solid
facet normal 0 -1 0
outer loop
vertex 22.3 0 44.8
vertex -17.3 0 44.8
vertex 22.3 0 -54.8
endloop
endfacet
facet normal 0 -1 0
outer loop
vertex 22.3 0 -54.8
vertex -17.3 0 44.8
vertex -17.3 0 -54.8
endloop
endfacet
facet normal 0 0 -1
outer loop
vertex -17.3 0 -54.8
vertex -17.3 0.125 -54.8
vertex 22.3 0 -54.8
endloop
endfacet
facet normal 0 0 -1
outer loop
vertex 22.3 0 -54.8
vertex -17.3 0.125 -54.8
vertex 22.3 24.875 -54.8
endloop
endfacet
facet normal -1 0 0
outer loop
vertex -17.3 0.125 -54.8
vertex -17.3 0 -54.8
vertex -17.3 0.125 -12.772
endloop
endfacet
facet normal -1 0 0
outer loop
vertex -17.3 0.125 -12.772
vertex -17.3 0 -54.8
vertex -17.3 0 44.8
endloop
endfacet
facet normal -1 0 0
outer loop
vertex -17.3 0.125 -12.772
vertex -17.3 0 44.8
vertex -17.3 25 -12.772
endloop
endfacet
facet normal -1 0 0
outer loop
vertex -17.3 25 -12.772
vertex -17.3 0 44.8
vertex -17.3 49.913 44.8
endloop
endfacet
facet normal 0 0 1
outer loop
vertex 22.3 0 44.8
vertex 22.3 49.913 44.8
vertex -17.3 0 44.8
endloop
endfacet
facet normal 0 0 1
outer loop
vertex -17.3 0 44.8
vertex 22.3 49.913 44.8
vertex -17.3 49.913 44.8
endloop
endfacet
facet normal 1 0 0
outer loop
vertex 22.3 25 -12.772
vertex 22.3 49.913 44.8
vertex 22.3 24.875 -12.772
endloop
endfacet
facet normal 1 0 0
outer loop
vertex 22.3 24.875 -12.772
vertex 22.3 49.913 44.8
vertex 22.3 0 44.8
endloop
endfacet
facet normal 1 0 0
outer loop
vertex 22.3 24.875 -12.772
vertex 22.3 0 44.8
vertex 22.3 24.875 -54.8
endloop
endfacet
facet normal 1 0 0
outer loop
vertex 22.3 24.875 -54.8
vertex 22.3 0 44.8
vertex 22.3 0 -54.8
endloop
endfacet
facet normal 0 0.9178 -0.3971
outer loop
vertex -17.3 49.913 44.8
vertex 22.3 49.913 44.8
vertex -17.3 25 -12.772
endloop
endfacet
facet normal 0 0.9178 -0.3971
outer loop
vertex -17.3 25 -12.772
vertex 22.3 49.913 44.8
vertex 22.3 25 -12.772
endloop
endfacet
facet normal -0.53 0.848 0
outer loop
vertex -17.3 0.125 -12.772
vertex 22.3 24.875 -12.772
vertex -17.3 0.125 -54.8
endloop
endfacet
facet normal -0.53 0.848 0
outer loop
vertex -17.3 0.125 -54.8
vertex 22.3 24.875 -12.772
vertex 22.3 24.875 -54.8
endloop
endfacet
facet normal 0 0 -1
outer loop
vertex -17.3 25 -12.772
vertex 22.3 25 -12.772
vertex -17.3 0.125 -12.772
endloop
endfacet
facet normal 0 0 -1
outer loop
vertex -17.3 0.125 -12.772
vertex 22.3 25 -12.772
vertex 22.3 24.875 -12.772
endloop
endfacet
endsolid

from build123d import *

# Parameters (mm, degrees)
SKETCH2_W           = 40
SKETCH2_H           = 5
SKETCH2_W_2         = 5
SKETCH2_H_2         = 100
BOSS_EXTRUDE1_DEPTH = 30
SKETCH3_W           = 3
SKETCH3_H           = 3
CUT_EXTRUDE1_DEPTH  = 5
SKETCH2_4_W         = 40
SKETCH2_4_H         = 100
BOSS_EXTRUDE2_DEPTH = 5
CUT_EXTRUDE2_DEPTH  = 25
BOSS_EXTRUDE3_DEPTH = 25
SKETCH10_W          = 40
SKETCH10_H          = 5
BOSS_EXTRUDE4_DEPTH = 35
SKETCH11_W          = 5
SKETCH11_H          = 5
CUT_EXTRUDE5_DEPTH  = 6
SKETCH11_4_W        = 5
SKETCH11_4_H        = 5
CUT_EXTRUDE6_DEPTH  = 4.99
BOSS_EXTRUDE5_DEPTH = 50
SKETCH12_3_W        = 40
SKETCH12_3_H        = 42.17911114
BOSS_EXTRUDE6_DEPTH = 25
CHAMFER1_SIZE       = 25.021332939
CHAMFER1_SIZE_2     = 57.82088886
CUT_EXTRUDE7_DEPTH  = 42.2284
SKETCH15_W          = 50
SKETCH15_H          = 110
CUT_EXTRUDE8_DEPTH  = 40
SKETCH16_W          = 40
SKETCH16_H          = 100
SKETCH16_W_2        = 39.6
SKETCH16_H_2        = 99.6
CUT_EXTRUDE9_DEPTH  = 50


with BuildPart() as part:
    # Sketch2 → Boss-Extrude1 (new body)
    with BuildSketch(Plane(origin=(0, 0, 0), x_dir=(1, 0, 0), z_dir=(0, 1, 0))):
        Polygon((-22.5, 60), (-22.5, -50), (-17.5, -50), (-17.5, -45), (-17.5, 55), (-17.5, 60), align=None)
        with Locations((2.5, 57.5)):
            Rectangle(SKETCH2_W, SKETCH2_H)
        with Locations((25, 57.5)):
            Rectangle(SKETCH2_W_2, SKETCH2_H)
        with Locations((25, 5)):
            Rectangle(SKETCH2_W_2, SKETCH2_H_2)
        with Locations((25, -47.5)):
            Rectangle(SKETCH2_W_2, SKETCH2_H)
        with Locations((2.5, -47.5)):
            Rectangle(SKETCH2_W, SKETCH2_H)
    extrude(amount=-BOSS_EXTRUDE1_DEPTH)

    # Sketch3 → Cut-Extrude1 (cut)
    with BuildSketch(Plane.ZY.offset(22.5)):
        Polygon((-35, -25), (-35, -28), (-32, -28), (-32, -22), (-38, -22), (-38, -25), align=None)
        with Locations((-36.5, -26.5)):
            Rectangle(SKETCH3_W, SKETCH3_H)
    extrude(amount=-CUT_EXTRUDE1_DEPTH, mode=Mode.SUBTRACT)

    # Sketch2<4> → Boss-Extrude2 (add)
    with BuildSketch(Plane(origin=(0, 0, 0), x_dir=(1, 0, 0), z_dir=(0, 1, 0))):
        with Locations((2.5, 5)):
            Rectangle(SKETCH2_4_W, SKETCH2_4_H)
    extrude(amount=-BOSS_EXTRUDE2_DEPTH)

    # Sketch5 → Cut-Extrude2 (cut)
    with BuildSketch(Plane.XZ.offset(30)):
        Polygon((27.5, 50), (-22.5, 50), (-22.5, 45), (-17.5, 45), (17.5, 45), (22.5, 45), (22.5, -55), (17.5, -55), (-17.5, -55), (-22.5, -55), (-22.5, -60), (27.5, -60), align=None)
    extrude(amount=-CUT_EXTRUDE2_DEPTH, mode=Mode.SUBTRACT)

    # Sketch5<3> → Boss-Extrude3 (add)
    with BuildSketch(Plane.XZ.offset(30)):
        Polygon((17.5, 45), (-17.5, 45), (-17.5, 40), (12.5, 40), (12.5, -50), (-17.5, -50), (-17.5, -55), (17.5, -55), align=None)
    extrude(amount=-BOSS_EXTRUDE3_DEPTH)

    # Sketch10 → Boss-Extrude4 (add)
    with BuildSketch(Plane.XZ.offset(5)):
        with Locations((-2.5, 47.5)):
            Rectangle(SKETCH10_W, SKETCH10_H)
        with Locations((-2.5, -57.5)):
            Rectangle(SKETCH10_W, SKETCH10_H)
    extrude(amount=BOSS_EXTRUDE4_DEPTH)

    # Sketch11 → Cut-Extrude5 (cut)
    with BuildSketch(Plane(origin=(0, 0, 0), x_dir=(1, 0, 0), z_dir=(0, 1, 0))):
        with Locations((25, 52.5)):
            Rectangle(SKETCH11_W, SKETCH11_H)
        Polygon((27.5, 7.5), (22.5, 7.5), (22.5, 5), (22.5, 2.5), (27.5, 2.5), (27.5, 5), align=None)
        Polygon((27.5, -45), (27.5, -40), (24, -40), (23.5, -40), (22.5, -40), (22.5, -41), (22.5, -41.5), (22.5, -45), align=None)
    extrude(amount=-CUT_EXTRUDE5_DEPTH, mode=Mode.SUBTRACT)

    # Sketch11<4> → Cut-Extrude6 (cut)
    with BuildSketch(Plane(origin=(0, 0, 0), x_dir=(1, 0, 0), z_dir=(0, 1, 0))):
        Polygon((-17.5, 7.5), (-22.5, 7.5), (-22.5, 5), (-22.5, 2.5), (-17.5, 2.5), align=None)
        with Locations((-20, -42.5)):
            Rectangle(SKETCH11_4_W, SKETCH11_4_H)
    extrude(amount=-CUT_EXTRUDE6_DEPTH, mode=Mode.SUBTRACT)

    # Sketch12 → Boss-Extrude5 (add)
    with BuildSketch(Plane(origin=(0, 0, 0), x_dir=(1, 0, 0), z_dir=(0, 1, 0))):
        Polygon((22.5, 12.82088886), (-17.5, 12.82088886), (-17.5, 7.5), (-17.5, 2.5), (-17.5, -40), (-17.5, -45), (22.5, -45), (22.5, -40), (22.5, 2.5), (22.5, 7.5), align=None)
    extrude(amount=BOSS_EXTRUDE5_DEPTH)

    # Sketch12<3> → Boss-Extrude6 (add)
    with BuildSketch(Plane(origin=(0, 0, 0), x_dir=(1, 0, 0), z_dir=(0, 1, 0))):
        with Locations((2.5, 33.91044443)):
            Rectangle(SKETCH12_3_W, SKETCH12_3_H)
    extrude(amount=BOSS_EXTRUDE6_DEPTH)

    # Chamfer1
    # the kernel refuses this chamfer: 57.82088886, 25.021332939 mm, written as the material it takes off along each edge
    with BuildSketch(Plane(origin=(172.37635383, 50, -12.82088886), x_dir=(0, -0.9966687843763375, -0.08155571255156512), z_dir=(-1, 0, 0))) as chamfer1_piece_1_section:
        Polygon((CHAMFER1_SIZE * 0.996668784369, CHAMFER1_SIZE * 0.081555712551), (-CHAMFER1_SIZE_2 * 0.0815557125516, CHAMFER1_SIZE_2 * 0.996668784376), (0, 0), align=None)
    chamfer1_piece_1 = extrude(amount=339.752707661, mode=Mode.PRIVATE)
    chamfer1_piece_1 = split(chamfer1_piece_1, bisect_by=Plane(origin=(2.5, 25, 6.452754758), z_dir=(0, 1, 0)), keep=Keep.TOP, mode=Mode.PRIVATE)
    add(chamfer1_piece_1, mode=Mode.SUBTRACT)

    # Sketch14 → Cut-Extrude7 (cut)
    with BuildSketch(Plane(origin=(0, 0, -55), x_dir=(-1, 0, 0), z_dir=(0, 0, -1))):
        Polygon((-22.5, 25), (17.5, 0), (17.5, 25), align=None)
    extrude(amount=-CUT_EXTRUDE7_DEPTH, mode=Mode.SUBTRACT)

    # Sketch15 → Cut-Extrude8 (cut)
    with BuildSketch(Plane.XZ.offset(40)):
        with Locations((2.5, -5)):
            Rectangle(SKETCH15_W, SKETCH15_H)
    extrude(amount=-CUT_EXTRUDE8_DEPTH, mode=Mode.SUBTRACT)

    # Sketch16 → Cut-Extrude9 (cut)
    with BuildSketch(Plane.XZ):
        with Locations((2.5, -5)):
            Rectangle(SKETCH16_W, SKETCH16_H)
        with Locations((2.5, -5)):
            Rectangle(SKETCH16_W_2, SKETCH16_H_2, mode=Mode.SUBTRACT)
    extrude(amount=-CUT_EXTRUDE9_DEPTH, mode=Mode.SUBTRACT)


solid = part.part
